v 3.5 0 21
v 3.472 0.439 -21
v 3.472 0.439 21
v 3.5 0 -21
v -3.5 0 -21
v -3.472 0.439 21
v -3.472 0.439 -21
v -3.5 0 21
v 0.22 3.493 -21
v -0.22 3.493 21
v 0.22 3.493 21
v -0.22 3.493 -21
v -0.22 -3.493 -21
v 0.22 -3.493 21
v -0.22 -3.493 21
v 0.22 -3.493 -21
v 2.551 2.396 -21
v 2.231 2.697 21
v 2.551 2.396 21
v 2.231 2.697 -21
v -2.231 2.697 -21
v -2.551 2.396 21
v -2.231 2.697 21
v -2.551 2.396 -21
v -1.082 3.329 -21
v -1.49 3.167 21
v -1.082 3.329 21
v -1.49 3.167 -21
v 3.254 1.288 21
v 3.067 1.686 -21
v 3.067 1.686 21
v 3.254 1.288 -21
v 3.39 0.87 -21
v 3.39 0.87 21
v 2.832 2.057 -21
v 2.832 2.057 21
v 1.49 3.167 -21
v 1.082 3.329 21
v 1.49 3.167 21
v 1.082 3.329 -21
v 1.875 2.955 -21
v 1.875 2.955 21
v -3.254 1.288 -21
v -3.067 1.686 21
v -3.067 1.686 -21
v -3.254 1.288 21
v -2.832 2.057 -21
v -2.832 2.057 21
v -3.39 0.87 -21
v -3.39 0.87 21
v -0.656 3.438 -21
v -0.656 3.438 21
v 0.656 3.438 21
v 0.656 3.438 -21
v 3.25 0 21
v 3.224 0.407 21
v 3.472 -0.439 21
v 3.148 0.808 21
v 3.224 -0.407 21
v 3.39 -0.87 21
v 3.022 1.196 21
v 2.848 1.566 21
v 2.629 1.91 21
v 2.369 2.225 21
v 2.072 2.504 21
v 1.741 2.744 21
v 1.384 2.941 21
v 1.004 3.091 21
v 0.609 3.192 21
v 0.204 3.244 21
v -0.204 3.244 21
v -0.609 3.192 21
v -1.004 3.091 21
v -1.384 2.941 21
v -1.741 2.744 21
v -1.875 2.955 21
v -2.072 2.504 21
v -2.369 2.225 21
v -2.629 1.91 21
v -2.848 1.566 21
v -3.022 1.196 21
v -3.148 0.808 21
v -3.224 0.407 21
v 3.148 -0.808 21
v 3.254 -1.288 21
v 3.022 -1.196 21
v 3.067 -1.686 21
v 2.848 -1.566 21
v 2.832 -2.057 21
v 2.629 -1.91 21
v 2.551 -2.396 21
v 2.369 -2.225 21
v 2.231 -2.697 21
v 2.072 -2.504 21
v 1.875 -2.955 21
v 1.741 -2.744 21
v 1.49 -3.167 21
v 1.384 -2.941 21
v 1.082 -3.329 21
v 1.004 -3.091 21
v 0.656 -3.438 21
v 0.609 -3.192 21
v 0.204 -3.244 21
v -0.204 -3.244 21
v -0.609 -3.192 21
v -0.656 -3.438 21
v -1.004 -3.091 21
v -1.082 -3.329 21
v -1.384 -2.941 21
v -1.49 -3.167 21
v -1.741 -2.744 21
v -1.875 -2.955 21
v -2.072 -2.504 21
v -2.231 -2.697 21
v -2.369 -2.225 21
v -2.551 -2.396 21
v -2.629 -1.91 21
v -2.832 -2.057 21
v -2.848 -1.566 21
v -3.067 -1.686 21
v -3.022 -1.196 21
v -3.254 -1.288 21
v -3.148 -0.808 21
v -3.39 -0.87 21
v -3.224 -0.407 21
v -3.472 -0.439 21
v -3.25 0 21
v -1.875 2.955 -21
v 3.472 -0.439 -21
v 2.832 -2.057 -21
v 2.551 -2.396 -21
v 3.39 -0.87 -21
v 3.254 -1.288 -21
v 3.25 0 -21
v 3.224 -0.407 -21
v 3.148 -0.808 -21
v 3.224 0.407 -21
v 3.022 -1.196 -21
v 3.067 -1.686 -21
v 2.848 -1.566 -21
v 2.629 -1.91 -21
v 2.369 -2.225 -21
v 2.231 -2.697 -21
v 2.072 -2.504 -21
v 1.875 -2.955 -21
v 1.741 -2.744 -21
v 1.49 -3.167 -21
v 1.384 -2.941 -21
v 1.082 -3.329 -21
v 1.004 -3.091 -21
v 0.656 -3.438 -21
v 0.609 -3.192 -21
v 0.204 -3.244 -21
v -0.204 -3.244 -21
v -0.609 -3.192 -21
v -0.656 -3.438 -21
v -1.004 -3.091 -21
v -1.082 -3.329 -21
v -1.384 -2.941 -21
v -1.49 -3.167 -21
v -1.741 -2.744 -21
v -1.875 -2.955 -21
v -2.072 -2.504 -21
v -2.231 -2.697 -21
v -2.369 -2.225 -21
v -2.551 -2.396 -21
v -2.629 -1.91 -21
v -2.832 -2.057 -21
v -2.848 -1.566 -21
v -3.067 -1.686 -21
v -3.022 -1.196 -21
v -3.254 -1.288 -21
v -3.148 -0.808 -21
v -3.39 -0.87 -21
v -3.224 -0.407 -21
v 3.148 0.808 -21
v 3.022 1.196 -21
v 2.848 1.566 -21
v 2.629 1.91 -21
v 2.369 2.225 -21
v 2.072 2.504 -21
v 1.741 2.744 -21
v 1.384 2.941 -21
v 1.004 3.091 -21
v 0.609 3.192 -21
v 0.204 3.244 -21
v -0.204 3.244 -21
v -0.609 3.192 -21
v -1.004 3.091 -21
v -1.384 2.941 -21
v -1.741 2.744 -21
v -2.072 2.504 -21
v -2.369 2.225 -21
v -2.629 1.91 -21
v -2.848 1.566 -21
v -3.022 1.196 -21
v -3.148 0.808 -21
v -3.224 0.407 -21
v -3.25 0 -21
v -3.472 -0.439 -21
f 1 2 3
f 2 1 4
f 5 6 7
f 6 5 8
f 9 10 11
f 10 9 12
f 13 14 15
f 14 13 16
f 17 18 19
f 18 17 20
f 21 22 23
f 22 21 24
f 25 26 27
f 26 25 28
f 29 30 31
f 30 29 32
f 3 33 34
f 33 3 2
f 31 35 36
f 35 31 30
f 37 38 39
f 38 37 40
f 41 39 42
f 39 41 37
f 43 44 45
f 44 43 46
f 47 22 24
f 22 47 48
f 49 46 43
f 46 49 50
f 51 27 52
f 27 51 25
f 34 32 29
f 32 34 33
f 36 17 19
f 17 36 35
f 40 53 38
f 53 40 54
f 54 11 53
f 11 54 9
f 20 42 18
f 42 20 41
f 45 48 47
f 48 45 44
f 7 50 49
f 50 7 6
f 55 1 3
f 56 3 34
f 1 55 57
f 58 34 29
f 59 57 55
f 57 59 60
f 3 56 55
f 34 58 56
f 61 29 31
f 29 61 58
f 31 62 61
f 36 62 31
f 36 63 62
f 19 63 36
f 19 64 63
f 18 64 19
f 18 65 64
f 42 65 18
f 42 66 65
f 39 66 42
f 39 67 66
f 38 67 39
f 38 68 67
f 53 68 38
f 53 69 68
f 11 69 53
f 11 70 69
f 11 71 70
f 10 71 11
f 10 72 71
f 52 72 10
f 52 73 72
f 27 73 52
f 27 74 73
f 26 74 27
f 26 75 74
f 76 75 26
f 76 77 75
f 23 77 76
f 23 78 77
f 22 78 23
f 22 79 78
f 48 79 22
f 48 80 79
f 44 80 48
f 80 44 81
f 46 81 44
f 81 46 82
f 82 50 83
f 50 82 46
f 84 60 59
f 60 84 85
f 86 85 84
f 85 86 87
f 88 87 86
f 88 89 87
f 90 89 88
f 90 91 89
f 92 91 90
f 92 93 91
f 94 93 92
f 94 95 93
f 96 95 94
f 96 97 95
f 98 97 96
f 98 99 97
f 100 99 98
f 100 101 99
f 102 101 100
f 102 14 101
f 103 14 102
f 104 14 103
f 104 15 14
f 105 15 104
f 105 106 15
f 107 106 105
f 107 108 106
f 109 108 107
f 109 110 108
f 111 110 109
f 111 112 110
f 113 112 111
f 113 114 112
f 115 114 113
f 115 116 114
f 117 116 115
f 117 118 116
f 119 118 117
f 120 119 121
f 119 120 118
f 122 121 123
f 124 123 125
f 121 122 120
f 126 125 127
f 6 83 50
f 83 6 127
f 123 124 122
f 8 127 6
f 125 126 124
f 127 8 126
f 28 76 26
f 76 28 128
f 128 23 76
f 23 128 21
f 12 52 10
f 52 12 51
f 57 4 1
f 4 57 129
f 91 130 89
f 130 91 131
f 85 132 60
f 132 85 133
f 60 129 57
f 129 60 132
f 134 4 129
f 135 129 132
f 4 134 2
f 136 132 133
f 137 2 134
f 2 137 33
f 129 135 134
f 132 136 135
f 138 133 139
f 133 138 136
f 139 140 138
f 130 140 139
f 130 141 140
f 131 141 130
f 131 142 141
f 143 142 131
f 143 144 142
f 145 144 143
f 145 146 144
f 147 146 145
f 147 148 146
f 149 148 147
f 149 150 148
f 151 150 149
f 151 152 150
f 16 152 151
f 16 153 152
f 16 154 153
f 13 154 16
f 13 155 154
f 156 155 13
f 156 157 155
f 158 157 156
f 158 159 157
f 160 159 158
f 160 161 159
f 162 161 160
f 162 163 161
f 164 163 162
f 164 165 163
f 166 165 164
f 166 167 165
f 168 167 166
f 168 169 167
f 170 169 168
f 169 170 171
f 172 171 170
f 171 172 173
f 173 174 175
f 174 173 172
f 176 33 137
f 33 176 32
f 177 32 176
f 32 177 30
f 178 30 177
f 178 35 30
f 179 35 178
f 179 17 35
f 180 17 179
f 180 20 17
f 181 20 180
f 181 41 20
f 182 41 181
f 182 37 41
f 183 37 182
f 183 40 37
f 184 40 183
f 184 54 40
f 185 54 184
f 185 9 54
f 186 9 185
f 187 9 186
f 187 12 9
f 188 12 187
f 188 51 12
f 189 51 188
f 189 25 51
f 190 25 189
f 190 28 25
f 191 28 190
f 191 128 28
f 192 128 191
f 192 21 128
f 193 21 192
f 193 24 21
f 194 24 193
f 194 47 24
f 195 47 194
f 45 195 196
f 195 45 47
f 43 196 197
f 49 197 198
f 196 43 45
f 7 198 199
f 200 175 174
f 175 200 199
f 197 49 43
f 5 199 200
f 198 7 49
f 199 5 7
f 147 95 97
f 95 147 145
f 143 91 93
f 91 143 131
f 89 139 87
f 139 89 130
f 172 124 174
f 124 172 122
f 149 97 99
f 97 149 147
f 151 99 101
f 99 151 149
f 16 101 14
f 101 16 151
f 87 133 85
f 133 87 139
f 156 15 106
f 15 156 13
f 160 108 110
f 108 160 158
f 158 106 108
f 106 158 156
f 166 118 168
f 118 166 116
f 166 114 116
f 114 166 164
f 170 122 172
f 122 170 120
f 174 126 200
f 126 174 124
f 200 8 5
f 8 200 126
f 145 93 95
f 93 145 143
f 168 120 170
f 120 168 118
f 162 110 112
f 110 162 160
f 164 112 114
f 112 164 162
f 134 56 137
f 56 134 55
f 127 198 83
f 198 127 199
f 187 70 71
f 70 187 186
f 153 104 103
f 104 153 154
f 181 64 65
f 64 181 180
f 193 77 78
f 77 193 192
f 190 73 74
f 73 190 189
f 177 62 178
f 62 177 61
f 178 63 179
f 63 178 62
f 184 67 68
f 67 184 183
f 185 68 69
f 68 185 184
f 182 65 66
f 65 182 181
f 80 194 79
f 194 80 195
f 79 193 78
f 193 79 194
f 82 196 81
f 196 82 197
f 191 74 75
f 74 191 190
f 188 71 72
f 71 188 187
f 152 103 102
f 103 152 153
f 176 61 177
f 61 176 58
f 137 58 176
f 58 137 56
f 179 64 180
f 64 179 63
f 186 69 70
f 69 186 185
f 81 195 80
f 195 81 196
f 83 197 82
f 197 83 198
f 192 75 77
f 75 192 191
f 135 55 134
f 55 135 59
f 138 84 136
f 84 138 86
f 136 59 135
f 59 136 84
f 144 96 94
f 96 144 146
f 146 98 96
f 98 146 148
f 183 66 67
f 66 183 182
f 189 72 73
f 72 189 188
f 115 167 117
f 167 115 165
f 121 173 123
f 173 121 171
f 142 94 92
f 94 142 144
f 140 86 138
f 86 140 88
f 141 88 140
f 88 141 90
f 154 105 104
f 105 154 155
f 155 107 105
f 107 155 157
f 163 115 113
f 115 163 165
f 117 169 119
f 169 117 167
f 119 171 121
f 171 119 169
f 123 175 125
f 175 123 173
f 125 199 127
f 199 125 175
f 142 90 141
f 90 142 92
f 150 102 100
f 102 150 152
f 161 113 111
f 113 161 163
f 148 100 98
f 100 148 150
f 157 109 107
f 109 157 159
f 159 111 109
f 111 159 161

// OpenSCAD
$fn = 50;


difference() {
	union() {
		translate(v = [0, 0, -21.0000000000]) {
			cylinder(h = 42, r = 3.5000000000);
		}
	}
	union() {
		translate(v = [0, 0, -100.0000000000]) {
			cylinder(h = 200, r = 3.2500000000);
		}
	}
}
